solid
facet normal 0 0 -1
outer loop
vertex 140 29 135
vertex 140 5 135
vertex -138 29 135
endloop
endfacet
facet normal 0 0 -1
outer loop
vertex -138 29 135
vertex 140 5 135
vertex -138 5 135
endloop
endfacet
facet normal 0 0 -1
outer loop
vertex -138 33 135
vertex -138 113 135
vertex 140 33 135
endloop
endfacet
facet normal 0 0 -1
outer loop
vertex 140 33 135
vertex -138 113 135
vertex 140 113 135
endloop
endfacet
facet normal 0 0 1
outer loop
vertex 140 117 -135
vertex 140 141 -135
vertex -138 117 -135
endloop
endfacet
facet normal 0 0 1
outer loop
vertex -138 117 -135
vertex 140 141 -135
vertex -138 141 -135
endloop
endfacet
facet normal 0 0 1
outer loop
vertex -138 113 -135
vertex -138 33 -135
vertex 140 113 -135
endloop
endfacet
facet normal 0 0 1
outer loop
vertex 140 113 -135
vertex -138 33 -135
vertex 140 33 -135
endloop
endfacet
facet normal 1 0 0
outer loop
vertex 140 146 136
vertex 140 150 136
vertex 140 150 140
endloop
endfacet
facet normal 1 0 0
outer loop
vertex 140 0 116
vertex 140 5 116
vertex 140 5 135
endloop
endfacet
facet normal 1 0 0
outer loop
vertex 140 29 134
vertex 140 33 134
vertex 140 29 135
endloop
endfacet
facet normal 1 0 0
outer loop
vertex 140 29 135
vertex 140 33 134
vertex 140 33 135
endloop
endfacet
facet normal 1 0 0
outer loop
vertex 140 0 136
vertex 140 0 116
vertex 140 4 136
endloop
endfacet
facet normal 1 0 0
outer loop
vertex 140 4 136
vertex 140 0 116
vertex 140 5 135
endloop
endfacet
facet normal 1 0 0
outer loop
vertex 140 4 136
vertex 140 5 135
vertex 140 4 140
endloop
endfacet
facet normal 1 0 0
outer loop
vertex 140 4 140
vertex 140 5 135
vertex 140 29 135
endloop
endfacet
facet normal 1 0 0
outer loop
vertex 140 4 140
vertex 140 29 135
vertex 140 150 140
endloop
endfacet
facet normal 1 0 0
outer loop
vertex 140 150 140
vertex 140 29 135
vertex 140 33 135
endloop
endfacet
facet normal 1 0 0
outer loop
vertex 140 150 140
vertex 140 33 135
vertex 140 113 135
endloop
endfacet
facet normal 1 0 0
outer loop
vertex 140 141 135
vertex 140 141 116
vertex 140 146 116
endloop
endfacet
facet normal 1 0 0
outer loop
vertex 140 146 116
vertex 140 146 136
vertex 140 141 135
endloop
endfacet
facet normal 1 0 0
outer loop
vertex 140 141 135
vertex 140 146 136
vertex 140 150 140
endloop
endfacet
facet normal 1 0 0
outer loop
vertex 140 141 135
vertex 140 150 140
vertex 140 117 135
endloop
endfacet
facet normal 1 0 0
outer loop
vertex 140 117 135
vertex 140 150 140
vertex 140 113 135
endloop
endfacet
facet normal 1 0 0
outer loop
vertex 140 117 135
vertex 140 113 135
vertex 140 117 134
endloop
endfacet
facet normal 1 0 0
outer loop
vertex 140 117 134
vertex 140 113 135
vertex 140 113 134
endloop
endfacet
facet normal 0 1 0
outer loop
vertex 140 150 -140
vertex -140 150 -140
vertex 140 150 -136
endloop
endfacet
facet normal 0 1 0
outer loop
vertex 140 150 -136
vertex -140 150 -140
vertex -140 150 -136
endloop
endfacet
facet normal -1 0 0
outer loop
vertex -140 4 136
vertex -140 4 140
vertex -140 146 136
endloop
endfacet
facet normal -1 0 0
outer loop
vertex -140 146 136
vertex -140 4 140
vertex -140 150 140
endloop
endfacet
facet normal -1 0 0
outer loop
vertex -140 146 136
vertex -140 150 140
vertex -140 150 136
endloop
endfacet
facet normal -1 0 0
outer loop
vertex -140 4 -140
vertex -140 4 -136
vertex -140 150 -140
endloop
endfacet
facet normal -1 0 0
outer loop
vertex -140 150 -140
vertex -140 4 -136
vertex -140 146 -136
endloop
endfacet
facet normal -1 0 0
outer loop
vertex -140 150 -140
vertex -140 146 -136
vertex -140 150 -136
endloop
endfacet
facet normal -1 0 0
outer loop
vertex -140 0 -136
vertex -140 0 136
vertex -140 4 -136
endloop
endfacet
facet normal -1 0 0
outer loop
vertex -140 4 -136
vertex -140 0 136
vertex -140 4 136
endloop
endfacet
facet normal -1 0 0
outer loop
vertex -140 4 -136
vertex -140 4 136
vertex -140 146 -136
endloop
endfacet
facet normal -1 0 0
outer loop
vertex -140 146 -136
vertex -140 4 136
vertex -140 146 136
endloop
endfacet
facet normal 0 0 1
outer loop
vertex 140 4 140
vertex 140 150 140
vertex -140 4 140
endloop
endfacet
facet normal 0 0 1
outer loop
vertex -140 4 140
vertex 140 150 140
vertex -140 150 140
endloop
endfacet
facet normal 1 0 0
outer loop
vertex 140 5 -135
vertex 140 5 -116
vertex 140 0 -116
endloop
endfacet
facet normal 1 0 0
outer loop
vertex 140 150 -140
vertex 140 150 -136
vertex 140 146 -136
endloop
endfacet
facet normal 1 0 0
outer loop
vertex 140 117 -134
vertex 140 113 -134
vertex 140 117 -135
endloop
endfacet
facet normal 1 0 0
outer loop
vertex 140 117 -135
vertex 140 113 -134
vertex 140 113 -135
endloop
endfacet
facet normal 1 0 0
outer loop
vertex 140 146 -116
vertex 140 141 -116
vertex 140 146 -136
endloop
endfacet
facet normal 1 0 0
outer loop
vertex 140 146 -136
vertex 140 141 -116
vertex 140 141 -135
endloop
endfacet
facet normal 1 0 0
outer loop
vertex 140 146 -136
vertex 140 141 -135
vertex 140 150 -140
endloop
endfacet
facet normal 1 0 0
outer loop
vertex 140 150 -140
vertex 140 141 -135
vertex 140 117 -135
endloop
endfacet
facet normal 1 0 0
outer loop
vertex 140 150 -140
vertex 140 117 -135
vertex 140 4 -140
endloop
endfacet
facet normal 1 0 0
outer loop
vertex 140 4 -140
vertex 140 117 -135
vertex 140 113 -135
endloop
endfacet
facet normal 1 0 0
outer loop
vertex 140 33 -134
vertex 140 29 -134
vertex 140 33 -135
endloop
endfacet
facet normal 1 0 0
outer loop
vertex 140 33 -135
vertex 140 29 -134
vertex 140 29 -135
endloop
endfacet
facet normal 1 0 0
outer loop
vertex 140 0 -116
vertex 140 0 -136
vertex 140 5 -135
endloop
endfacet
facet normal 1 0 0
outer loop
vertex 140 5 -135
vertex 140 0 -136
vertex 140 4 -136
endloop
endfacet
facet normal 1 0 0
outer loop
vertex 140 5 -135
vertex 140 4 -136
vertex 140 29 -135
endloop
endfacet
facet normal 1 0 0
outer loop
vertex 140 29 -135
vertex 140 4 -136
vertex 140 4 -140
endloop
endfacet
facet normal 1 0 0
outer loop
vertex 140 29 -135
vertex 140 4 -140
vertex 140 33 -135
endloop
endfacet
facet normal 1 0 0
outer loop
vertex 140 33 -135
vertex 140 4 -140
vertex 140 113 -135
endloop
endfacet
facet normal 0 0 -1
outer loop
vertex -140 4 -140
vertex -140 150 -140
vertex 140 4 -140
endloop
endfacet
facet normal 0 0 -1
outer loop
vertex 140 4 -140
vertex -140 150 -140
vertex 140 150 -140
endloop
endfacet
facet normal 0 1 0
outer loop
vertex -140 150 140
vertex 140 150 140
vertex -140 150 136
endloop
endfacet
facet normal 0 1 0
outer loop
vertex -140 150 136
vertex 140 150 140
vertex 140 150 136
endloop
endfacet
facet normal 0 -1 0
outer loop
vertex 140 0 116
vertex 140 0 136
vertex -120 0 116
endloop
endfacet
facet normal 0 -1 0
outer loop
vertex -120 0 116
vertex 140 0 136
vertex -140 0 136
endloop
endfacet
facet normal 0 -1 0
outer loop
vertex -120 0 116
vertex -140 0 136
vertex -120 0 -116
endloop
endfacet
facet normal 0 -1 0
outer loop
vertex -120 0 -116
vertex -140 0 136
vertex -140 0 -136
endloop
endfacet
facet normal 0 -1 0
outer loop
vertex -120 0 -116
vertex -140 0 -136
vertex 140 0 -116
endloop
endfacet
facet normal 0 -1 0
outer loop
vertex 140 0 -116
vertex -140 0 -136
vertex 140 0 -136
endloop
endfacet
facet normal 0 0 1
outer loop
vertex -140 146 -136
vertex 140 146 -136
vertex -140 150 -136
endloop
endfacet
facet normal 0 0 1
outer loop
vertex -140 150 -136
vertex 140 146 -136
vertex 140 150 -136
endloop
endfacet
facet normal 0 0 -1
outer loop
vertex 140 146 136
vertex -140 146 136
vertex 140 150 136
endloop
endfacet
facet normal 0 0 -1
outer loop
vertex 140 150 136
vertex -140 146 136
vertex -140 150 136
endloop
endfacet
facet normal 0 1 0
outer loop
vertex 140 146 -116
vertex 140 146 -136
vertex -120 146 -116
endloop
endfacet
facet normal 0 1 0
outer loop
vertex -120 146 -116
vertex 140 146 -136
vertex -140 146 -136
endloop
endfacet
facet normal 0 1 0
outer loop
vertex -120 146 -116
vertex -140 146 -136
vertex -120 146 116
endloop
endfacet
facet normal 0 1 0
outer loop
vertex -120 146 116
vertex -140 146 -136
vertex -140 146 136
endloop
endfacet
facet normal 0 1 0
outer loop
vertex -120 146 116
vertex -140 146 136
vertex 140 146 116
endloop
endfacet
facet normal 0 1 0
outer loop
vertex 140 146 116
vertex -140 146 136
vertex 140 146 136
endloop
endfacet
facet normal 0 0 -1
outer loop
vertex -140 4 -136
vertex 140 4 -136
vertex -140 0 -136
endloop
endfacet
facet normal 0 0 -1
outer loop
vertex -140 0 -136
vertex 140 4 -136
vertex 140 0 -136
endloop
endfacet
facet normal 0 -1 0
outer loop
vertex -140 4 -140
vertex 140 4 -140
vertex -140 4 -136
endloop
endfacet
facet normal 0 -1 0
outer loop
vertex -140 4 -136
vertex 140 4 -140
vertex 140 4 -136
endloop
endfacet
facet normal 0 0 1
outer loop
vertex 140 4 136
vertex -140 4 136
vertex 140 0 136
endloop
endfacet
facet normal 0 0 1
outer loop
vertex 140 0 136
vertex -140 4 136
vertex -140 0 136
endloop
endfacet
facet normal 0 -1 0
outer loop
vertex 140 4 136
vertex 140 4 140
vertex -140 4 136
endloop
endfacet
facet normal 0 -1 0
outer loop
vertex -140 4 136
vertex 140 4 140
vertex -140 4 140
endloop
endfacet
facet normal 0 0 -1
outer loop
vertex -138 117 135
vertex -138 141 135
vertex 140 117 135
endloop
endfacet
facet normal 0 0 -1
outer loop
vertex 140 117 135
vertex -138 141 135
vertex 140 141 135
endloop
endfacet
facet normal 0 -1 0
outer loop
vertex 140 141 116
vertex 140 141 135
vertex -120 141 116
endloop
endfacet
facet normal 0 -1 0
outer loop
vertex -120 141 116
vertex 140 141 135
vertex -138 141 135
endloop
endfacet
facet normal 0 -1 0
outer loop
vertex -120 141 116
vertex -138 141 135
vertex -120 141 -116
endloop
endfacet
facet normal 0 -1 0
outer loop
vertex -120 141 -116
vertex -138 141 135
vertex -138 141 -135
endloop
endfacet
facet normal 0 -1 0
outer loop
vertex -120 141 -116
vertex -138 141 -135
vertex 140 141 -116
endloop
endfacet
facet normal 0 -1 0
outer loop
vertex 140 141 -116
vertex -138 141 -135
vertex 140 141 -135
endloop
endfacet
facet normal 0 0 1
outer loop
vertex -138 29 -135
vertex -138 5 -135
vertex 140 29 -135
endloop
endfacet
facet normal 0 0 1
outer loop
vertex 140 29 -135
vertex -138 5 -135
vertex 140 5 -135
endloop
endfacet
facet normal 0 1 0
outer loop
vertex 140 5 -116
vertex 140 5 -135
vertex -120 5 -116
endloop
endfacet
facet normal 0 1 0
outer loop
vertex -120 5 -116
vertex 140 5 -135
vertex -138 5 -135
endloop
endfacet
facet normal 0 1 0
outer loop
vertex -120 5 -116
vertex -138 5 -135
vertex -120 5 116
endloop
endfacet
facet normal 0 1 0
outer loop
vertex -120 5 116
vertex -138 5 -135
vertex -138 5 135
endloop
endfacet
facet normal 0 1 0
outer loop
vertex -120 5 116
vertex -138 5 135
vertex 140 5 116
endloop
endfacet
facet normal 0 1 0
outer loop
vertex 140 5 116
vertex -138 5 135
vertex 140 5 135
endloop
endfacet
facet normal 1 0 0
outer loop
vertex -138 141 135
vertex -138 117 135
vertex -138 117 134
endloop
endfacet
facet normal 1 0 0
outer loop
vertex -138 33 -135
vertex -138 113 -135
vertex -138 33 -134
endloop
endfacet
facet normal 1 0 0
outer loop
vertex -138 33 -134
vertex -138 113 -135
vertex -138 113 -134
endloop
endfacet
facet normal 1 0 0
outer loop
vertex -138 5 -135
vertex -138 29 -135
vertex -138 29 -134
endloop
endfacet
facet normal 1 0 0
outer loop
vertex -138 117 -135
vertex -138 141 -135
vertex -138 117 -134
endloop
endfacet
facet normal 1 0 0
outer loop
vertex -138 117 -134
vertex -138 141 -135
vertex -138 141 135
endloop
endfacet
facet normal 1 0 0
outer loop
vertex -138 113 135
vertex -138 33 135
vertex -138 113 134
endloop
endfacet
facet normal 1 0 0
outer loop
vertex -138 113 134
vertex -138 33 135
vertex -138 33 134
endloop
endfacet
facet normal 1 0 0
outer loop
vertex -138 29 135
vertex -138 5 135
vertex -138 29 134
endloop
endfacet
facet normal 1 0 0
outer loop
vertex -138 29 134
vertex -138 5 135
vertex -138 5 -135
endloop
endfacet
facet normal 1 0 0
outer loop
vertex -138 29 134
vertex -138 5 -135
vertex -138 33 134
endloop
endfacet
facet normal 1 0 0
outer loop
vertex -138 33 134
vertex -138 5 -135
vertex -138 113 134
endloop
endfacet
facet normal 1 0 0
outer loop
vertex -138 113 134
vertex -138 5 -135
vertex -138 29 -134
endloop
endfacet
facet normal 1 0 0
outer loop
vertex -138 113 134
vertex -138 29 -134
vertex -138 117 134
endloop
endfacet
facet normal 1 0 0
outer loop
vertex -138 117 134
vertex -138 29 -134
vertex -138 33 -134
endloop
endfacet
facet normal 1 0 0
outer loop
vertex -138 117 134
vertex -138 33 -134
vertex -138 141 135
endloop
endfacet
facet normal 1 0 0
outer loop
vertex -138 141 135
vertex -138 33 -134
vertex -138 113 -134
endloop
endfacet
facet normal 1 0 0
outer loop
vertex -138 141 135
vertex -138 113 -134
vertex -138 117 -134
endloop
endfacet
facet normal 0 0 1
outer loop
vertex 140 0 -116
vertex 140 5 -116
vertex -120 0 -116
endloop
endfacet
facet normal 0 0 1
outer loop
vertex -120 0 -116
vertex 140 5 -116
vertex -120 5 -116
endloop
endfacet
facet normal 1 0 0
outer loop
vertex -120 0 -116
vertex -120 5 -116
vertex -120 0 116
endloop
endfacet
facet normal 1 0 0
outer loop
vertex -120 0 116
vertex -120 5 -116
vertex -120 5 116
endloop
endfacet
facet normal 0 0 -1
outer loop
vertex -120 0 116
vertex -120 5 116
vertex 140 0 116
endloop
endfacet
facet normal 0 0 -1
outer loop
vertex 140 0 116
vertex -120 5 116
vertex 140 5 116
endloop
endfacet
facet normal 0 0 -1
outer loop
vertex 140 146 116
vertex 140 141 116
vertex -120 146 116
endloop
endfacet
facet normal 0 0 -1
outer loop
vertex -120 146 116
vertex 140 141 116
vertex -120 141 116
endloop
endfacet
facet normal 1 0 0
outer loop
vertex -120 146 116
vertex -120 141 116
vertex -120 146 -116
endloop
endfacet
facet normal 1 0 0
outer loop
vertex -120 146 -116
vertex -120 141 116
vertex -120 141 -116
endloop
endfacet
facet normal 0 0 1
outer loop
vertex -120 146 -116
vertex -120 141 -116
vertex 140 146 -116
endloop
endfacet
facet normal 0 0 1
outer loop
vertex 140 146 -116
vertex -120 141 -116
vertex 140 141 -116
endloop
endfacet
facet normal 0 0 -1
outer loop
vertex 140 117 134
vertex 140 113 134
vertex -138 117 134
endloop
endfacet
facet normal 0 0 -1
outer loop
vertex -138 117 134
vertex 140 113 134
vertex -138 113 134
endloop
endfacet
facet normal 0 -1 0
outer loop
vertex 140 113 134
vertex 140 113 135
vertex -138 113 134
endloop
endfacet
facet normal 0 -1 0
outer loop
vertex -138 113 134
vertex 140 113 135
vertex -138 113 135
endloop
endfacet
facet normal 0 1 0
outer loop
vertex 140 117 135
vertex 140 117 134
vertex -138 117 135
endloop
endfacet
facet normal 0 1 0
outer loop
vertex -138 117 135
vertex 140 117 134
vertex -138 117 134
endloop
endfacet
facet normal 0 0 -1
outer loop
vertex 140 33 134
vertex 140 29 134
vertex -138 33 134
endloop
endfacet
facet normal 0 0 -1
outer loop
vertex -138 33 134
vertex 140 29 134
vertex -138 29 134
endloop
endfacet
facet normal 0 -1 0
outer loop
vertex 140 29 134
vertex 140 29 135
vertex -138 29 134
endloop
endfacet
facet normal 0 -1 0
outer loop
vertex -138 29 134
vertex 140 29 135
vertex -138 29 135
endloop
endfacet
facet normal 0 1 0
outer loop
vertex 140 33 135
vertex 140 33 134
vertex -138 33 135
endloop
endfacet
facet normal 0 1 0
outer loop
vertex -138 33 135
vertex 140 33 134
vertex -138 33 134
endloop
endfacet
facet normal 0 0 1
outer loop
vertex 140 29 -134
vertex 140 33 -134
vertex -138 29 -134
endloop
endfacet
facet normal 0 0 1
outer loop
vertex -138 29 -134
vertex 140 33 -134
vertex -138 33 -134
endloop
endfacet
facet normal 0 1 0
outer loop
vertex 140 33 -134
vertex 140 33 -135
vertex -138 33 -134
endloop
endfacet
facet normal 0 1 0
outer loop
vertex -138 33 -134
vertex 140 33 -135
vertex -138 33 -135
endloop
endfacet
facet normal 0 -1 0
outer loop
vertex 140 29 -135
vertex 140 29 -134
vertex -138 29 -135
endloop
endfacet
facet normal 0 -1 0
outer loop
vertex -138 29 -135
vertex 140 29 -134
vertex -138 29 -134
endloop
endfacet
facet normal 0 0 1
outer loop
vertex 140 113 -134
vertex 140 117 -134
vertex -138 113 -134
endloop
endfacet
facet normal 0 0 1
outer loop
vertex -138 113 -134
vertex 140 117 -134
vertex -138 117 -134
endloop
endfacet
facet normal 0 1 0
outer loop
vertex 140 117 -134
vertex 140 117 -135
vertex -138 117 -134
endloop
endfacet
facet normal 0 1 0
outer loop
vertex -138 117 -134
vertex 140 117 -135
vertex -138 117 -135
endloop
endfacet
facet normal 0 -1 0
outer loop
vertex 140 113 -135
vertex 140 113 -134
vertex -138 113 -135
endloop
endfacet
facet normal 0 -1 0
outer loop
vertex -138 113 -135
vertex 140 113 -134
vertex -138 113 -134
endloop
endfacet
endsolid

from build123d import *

# Parameters (mm, degrees)
SKETCH_1_W          = 280
SKETCH_1_H          = 280
EXTRUDE_1_DEPTH     = 150
SKETCH_2_W          = 280
SKETCH_2_H          = 272
CUT_EXTRUDE_1_DEPTH = 4
SKETCH_3_W          = 280
SKETCH_3_H          = 4
CUT_EXTRUDE_2_DEPTH = 4
SKETCH_4_W          = 270
SKETCH_4_H          = 136
CUT_EXTRUDE_3_DEPTH = 278
SKETCH_6_W          = 260
SKETCH_6_H          = 232
CUT_EXTRUDE_7_DEPTH = 247
EXTRUDE_START       = 140
SKETCH_7_W          = 1
SKETCH_7_H          = 4
EXTRUDE_2_DEPTH     = 278


with BuildPart() as part:
    # 草图1 → 凸台-拉伸1 (new body)
    with BuildSketch(Plane(origin=(0, 0, 0), x_dir=(1, 0, 0), z_dir=(0, 1, 0))):
        Rectangle(SKETCH_1_W, SKETCH_1_H)
    extrude(amount=EXTRUDE_1_DEPTH)

    # 草图2 → 切除-拉伸1 (cut)
    with BuildSketch(Plane(origin=(0, 150, 0), x_dir=(1, 0, 0), z_dir=(0, 1, 0))):
        Rectangle(SKETCH_2_W, SKETCH_2_H)
    extrude(amount=-CUT_EXTRUDE_1_DEPTH, mode=Mode.SUBTRACT)

    # 草图3 → 切除-拉伸2 (cut)
    with BuildSketch(Plane.XZ):
        with Locations((0, 138)):
            Rectangle(SKETCH_3_W, SKETCH_3_H)
        with Locations((0, -138)):
            Rectangle(SKETCH_3_W, SKETCH_3_H)
    extrude(amount=-CUT_EXTRUDE_2_DEPTH, mode=Mode.SUBTRACT)

    # 草图4 → 切除-拉伸3 (cut)
    with BuildSketch(Plane(origin=(140, 0, 0), x_dir=(0, 0, -1), z_dir=(1, 0, 0))):
        with Locations((0, 73)):
            Rectangle(SKETCH_4_W, SKETCH_4_H)
    extrude(amount=-CUT_EXTRUDE_3_DEPTH, mode=Mode.SUBTRACT)

    # 草图6 → 切除-拉伸7 (cut, through all)
    with BuildSketch(Plane(origin=(0, 146, 0), x_dir=(1, 0, 0), z_dir=(0, 1, 0))):
        with Locations((10, 0)):
            Rectangle(SKETCH_6_W, SKETCH_6_H)
    extrude(amount=-CUT_EXTRUDE_7_DEPTH, mode=Mode.SUBTRACT)

    # 草图7 → 凸台-拉伸2 (add)
    with BuildSketch(Plane(origin=(0, 0, 0), x_dir=(0, 0, -1), z_dir=(1, 0, 0)).offset(EXTRUDE_START)):
        with Locations((-134.5, 115)):
            Rectangle(SKETCH_7_W, SKETCH_7_H)
        with Locations((-134.5, 31)):
            Rectangle(SKETCH_7_W, SKETCH_7_H)
        with Locations((134.5, 31)):
            Rectangle(SKETCH_7_W, SKETCH_7_H)
        with Locations((134.5, 115)):
            Rectangle(SKETCH_7_W, SKETCH_7_H)
    extrude(amount=-EXTRUDE_2_DEPTH)


solid = part.part
